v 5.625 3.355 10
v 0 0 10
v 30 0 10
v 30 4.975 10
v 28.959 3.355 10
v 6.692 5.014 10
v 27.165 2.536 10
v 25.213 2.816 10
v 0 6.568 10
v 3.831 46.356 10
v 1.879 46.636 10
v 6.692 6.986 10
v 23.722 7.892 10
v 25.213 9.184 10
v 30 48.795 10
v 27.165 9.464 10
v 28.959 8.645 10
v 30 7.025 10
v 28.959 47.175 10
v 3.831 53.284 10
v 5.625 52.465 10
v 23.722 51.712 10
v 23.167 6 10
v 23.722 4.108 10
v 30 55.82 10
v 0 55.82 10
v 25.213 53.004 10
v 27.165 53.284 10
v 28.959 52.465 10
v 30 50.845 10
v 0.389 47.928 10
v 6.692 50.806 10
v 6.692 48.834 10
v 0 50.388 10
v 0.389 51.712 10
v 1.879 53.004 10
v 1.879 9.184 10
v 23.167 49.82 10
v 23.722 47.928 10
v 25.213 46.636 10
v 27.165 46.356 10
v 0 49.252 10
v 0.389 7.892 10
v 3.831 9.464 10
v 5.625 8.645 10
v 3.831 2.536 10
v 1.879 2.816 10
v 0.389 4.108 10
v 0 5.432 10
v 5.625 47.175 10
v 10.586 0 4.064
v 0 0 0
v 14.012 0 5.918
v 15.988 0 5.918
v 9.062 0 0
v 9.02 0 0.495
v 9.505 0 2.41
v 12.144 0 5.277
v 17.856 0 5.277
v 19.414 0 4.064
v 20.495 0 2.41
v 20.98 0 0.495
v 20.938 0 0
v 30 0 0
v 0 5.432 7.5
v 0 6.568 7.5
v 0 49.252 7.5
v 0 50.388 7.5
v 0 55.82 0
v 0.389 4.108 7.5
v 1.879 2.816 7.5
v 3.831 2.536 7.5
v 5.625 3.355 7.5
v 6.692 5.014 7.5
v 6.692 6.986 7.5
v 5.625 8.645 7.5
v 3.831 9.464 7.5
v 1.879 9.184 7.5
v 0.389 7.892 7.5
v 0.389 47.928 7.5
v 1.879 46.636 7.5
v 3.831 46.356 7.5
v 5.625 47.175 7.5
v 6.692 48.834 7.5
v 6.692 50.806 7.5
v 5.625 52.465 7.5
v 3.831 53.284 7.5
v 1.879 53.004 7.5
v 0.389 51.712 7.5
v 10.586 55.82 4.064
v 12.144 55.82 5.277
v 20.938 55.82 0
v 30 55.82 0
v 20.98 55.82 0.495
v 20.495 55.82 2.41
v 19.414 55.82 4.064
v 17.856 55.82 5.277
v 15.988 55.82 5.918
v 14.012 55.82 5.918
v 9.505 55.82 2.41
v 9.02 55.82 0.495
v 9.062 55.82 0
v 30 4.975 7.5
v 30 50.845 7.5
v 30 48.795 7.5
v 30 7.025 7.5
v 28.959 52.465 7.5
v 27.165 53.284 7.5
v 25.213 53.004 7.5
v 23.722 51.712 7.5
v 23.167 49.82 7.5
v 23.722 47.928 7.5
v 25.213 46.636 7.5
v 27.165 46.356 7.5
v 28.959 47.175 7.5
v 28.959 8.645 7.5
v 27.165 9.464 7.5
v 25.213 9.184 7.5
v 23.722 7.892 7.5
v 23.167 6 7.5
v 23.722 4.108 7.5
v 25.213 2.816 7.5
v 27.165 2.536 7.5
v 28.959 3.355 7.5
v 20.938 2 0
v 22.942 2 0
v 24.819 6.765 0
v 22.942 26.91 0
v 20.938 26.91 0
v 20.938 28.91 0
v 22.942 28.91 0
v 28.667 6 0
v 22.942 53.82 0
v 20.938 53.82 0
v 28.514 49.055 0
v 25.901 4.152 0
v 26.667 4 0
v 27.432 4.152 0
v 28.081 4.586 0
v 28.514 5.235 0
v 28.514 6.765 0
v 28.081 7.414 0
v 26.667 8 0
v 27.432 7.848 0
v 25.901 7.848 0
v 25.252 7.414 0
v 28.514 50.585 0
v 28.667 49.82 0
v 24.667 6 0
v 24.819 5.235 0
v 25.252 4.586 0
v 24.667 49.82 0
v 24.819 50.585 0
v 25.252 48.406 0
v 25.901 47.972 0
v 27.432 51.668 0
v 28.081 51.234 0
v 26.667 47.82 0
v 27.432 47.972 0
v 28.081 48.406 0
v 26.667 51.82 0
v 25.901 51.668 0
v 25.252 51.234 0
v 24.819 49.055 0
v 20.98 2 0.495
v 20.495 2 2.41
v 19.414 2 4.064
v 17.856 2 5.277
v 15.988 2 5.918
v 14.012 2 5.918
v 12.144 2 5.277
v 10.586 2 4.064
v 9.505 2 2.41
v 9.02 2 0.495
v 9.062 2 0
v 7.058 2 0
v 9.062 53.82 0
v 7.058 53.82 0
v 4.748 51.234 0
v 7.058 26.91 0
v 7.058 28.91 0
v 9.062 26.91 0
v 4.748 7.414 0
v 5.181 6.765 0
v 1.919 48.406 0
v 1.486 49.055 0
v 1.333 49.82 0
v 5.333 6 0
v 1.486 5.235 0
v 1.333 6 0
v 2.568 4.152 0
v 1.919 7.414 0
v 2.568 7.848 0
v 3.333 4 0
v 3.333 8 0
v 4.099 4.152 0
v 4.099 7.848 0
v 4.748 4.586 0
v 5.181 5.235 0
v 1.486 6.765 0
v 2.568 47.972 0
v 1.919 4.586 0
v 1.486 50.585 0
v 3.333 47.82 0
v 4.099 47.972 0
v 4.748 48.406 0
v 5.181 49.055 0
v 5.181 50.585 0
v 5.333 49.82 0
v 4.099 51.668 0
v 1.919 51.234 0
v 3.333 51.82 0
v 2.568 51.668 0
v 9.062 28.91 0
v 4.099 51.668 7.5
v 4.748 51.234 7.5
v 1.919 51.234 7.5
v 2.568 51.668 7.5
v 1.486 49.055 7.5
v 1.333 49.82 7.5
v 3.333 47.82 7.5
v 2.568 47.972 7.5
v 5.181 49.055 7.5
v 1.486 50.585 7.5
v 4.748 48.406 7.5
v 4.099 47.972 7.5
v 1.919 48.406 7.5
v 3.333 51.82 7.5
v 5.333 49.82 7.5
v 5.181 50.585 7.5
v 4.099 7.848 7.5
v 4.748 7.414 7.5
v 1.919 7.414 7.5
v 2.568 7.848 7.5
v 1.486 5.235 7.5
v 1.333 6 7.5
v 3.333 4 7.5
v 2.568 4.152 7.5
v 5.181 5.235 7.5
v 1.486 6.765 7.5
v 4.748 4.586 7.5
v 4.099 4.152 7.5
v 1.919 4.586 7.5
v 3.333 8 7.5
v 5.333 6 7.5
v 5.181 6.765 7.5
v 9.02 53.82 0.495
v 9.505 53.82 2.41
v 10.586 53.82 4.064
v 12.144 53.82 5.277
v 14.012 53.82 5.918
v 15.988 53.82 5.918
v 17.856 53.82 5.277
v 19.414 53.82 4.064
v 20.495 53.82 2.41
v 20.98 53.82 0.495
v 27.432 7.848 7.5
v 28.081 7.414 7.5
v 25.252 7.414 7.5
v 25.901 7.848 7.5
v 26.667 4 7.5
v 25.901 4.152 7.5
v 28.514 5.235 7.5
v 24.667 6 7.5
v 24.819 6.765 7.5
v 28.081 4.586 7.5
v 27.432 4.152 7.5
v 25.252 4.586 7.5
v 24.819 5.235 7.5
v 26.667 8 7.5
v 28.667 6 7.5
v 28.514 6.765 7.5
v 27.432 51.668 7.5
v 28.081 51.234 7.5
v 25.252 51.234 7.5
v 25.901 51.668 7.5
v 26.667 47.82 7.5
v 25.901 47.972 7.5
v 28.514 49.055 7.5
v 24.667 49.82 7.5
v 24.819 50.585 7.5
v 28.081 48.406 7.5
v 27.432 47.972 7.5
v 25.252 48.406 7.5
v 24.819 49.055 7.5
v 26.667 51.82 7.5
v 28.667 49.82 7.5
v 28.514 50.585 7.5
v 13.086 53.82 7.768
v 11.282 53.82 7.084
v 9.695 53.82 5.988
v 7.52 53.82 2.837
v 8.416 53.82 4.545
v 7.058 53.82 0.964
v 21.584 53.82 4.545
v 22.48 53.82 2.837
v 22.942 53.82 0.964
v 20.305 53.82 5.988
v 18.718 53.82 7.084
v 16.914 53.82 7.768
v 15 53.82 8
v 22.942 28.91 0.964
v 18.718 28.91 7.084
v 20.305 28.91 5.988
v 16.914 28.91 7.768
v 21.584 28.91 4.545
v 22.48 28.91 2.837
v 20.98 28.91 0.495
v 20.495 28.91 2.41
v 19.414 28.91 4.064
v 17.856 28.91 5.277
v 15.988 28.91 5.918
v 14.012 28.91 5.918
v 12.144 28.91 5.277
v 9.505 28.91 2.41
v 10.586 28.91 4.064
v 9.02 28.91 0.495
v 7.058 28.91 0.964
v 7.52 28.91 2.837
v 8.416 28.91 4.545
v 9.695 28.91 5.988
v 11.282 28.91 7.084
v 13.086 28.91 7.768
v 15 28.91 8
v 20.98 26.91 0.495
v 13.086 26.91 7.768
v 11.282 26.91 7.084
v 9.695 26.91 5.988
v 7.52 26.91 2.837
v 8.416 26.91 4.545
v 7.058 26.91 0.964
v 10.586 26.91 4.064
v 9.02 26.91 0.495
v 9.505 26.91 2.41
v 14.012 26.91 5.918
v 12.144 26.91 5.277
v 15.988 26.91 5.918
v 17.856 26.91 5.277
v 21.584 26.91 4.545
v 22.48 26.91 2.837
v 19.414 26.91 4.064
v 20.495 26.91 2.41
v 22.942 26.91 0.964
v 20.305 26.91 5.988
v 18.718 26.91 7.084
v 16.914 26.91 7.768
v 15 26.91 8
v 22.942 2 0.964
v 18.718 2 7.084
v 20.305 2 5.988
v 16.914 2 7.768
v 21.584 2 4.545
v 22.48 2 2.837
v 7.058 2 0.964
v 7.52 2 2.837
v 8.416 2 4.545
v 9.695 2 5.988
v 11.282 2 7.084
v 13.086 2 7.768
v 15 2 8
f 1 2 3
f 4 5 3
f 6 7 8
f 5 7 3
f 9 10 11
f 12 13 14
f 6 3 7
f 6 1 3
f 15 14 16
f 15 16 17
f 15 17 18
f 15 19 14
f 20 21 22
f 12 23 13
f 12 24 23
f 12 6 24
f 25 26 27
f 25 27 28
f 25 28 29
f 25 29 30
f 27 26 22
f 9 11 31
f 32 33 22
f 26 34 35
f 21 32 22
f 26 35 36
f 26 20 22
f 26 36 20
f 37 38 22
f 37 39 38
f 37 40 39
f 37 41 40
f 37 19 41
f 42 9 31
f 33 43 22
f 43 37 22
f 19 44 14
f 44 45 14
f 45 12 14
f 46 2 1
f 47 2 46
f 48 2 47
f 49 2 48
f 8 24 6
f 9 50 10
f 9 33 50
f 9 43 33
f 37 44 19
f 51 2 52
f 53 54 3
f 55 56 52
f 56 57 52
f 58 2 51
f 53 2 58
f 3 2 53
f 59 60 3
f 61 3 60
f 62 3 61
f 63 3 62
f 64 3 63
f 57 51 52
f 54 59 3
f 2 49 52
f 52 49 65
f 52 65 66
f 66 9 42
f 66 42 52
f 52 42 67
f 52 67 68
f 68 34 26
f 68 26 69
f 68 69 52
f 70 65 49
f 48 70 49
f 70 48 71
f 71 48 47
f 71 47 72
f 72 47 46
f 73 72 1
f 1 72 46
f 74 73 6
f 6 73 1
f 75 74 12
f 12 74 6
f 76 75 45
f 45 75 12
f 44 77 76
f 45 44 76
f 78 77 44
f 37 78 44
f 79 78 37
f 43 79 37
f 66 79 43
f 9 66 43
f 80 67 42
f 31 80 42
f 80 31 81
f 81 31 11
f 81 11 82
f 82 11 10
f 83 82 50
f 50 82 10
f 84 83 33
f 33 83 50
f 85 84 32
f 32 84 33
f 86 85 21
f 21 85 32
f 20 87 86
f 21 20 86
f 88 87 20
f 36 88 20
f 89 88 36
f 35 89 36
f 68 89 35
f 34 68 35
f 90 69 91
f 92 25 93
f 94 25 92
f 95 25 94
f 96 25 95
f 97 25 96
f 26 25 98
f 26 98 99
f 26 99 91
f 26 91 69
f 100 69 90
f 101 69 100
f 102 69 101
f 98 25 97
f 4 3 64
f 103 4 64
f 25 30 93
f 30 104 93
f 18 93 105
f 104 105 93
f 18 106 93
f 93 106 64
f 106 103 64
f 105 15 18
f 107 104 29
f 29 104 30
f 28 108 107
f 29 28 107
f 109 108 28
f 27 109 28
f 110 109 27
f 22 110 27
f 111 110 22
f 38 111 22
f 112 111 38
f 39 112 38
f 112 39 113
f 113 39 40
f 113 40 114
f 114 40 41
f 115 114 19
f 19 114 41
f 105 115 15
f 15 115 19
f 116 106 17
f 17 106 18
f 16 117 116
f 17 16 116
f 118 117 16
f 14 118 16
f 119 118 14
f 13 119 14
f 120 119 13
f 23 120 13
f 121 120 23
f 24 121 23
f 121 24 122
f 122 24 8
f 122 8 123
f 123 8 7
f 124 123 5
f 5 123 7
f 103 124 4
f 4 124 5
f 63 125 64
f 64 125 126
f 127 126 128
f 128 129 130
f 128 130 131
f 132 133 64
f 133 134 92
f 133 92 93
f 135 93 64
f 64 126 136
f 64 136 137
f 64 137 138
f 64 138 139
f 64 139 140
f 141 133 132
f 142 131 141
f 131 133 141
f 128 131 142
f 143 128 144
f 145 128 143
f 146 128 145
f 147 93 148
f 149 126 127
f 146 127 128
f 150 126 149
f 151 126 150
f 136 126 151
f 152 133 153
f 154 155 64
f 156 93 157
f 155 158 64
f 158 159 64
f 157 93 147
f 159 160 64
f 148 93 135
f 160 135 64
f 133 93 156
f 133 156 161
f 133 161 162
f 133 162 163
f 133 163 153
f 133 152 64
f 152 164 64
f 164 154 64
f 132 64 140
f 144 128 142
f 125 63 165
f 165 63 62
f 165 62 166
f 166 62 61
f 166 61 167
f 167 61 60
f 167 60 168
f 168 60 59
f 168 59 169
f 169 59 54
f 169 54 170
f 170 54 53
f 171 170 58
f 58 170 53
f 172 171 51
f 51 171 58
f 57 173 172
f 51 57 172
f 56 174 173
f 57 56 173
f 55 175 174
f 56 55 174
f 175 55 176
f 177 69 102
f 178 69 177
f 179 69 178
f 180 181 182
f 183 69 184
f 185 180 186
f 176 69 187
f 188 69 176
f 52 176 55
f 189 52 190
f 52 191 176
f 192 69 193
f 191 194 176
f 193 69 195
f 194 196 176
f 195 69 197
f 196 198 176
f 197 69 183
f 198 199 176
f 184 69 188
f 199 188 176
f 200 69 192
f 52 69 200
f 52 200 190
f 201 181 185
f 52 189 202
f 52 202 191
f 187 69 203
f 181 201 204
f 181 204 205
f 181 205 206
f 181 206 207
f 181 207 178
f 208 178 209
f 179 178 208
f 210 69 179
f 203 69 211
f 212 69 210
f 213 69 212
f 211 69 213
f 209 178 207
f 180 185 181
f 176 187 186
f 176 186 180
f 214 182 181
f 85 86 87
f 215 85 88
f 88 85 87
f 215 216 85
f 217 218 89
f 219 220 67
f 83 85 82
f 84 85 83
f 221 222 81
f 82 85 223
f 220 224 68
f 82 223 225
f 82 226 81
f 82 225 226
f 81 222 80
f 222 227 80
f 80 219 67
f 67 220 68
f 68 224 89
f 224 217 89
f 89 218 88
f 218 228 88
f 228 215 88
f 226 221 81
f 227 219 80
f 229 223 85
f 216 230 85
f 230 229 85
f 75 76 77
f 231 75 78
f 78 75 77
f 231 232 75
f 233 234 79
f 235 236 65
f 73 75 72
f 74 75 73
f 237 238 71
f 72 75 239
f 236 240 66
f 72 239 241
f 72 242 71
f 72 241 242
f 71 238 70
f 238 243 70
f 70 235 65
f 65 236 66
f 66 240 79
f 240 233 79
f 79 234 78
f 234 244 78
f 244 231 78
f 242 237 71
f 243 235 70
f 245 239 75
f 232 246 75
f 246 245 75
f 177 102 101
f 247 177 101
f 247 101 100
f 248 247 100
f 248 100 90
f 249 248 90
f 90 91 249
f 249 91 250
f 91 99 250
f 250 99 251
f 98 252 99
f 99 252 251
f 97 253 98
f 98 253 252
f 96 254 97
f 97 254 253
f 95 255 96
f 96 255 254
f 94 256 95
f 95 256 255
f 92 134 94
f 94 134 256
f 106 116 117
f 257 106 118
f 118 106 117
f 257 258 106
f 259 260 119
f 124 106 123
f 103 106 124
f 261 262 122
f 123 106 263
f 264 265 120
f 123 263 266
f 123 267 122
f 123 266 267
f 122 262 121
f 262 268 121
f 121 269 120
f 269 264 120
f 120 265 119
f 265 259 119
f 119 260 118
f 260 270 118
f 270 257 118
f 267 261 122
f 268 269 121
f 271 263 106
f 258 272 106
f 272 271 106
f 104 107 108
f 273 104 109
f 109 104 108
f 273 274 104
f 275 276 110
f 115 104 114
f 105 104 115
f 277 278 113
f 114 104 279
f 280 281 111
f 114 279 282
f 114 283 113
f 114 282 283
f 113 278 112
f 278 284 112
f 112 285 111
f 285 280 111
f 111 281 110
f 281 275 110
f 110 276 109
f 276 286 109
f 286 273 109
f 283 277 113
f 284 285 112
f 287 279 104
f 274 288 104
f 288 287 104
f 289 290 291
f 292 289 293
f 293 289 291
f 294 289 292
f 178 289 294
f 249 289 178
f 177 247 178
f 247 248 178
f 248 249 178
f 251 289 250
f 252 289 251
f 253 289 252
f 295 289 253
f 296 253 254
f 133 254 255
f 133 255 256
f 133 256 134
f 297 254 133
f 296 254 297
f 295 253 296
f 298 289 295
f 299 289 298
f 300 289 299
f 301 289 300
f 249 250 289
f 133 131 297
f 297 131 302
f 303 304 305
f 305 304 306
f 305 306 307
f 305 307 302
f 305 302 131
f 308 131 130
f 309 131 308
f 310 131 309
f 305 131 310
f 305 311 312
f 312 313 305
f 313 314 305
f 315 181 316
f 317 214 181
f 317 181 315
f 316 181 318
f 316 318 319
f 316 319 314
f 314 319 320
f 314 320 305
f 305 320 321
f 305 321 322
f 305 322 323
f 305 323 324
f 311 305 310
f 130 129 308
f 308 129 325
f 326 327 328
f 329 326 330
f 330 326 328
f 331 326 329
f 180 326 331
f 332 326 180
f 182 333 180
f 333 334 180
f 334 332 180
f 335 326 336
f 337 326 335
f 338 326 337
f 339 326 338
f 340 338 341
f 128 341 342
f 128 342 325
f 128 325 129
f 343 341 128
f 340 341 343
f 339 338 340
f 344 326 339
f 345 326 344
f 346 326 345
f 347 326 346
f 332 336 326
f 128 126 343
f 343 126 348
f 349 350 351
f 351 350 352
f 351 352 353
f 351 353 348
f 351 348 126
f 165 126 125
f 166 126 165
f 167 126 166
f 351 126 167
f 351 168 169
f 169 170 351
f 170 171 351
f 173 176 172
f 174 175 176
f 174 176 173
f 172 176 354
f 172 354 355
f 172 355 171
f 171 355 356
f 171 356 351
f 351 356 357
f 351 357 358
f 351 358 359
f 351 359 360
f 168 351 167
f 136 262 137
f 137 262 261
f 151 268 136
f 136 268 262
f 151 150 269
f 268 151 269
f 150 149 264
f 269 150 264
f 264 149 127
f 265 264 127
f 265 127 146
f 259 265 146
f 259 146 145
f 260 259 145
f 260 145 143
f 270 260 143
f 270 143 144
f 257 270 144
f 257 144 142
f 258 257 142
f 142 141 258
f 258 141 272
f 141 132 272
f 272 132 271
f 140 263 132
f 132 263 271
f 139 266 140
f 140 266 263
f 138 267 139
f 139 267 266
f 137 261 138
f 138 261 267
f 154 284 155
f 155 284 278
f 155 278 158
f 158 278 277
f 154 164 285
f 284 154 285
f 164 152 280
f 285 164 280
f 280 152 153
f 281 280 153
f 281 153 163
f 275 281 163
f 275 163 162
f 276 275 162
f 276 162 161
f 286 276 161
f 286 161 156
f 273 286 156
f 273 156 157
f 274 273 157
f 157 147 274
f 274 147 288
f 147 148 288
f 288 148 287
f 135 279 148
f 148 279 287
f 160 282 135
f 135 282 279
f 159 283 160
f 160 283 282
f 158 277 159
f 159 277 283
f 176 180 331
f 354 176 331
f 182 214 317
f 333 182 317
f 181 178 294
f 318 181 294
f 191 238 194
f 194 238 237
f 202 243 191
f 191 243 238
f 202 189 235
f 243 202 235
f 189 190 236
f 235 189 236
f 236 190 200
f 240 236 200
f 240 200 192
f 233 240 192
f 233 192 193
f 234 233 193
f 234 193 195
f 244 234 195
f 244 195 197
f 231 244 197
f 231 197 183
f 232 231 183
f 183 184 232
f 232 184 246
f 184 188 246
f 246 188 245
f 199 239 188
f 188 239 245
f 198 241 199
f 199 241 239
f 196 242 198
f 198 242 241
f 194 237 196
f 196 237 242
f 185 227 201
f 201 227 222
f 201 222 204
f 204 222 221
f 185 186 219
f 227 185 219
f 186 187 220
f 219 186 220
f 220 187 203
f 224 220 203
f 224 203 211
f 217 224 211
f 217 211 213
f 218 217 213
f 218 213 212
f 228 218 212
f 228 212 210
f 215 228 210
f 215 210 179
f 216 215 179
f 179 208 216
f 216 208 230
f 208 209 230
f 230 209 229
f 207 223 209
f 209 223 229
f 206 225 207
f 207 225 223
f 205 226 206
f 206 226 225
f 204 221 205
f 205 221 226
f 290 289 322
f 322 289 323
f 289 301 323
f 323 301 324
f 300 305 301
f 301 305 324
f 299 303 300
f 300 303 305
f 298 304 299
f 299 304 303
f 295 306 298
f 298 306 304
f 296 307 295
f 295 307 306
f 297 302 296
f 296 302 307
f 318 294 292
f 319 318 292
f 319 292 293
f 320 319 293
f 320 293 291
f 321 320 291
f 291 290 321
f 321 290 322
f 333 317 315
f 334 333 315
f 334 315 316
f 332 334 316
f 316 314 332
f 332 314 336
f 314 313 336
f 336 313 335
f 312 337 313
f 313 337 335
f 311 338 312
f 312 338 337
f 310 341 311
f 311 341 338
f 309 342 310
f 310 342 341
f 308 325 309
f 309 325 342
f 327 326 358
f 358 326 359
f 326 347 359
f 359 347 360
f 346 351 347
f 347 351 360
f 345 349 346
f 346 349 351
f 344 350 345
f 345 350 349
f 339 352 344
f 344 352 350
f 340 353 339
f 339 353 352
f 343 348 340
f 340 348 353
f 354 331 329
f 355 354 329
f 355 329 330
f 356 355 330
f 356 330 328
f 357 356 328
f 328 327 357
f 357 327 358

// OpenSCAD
// file: BearingMount2.scad
 
// X and Y position rotation functions
//function RotateX(x,xc,y,yc,theta) = cos(theta)*(x-xc) - sin(theta)*(y-yc) + xc;
//function RotateY(x,xc,y,yc,theta) = sin(theta)*(x-xc) + cos(theta)*(y-yc) + yc;
//  TEST
//HalfRail(3);
// Draw a LM8UU bearing
// ---------------------------------------------------------------------
module LM8UU()
{
	dia = 7.5;
	dia_off=.5;
	long = 24;
	long_off=.91;
	color("Green") 
	translate([0,0,0]) 
	rotate([270,0,0])
	cylinder(h=long+long_off,r=dia+dia_off);
}

// Draw a 608ZZ bearing
// ---------------------------------------------------------------------
module 608ZZ()
{
	dia_off=.5;
	color("red")
	rotate([270,0,0])
	cylinder(h=7,r=11+dia_off);
}

//Draw a 8mm Rod
// ---------------------------------------------------------------------
module 8mmRod(Lenght)
{
	dia_off=.97;
	color("blue")
	rotate([270,0,0])
	cylinder(h=Lenght,r=4+dia_off);
}


// Half rail Module
//---------------------------------------------------------------
// SplitFixType = 1 Screw Head,  2+= 3mm nut;
module HalfRail(FixHoleType = 1)
{
AdditionalHeight = 10;   //for screw hole
LM8UUDiam = 8*2;
LM8UULenght = 24.91;
WallWidth = 2;
BearingCenterZ = LM8UUDiam/2 + WallWidth + AdditionalHeight/2 ;
TotalHeight =  LM8UUDiam + (WallWidth*2) + AdditionalHeight ;
TotalLenght = (LM8UULenght*2) +  (WallWidth*3);
TotalWidth = WallWidth + LM8UUDiam/2;


//BaseHeight =  BaseHeightRelative/2 + OuterDia;


HexNutHoleRadius = 3.5;
ScrewHeadRadius = 3.9;
ScrewDomeHeadRadius = 4.1;
ScrewDomeHoleRadius = 1.5;

echo("***TotalLenght=", TotalLenght);
echo("***TotalWidth=", TotalWidth);
echo("***TotalHeight=", TotalHeight);
echo("***BearingCenterZ=", BearingCenterZ);

//translate([0,0,BaseHeight])

	difference()
	{
		union()
		{
			cube([TotalWidth ,TotalLenght,TotalHeight ]);
		}
			
		// Bearings
		translate ([TotalWidth,WallWidth,BearingCenterZ]) LM8UU();
		translate ([TotalWidth,WallWidth+LM8UULenght+WallWidth,BearingCenterZ]) LM8UU();

		//Shaft 8mm
		translate ([TotalWidth,-1,BearingCenterZ]) rotate([270,0,0]) cylinder (h =TotalLenght+2,  r=6);


		if ( FixHoleType == 3) //Dome Screw Head
		{
			translate([2,6,TotalHeight - AdditionalHeight/3]) rotate([0,90,0]) cylinder(h=30,r=2 , $fn=16);
			translate([-1,6,TotalHeight - AdditionalHeight/3]) rotate([0,90,0]) cylinder(h=3.5,r=3.5);
			
			translate([2,6,AdditionalHeight/3]) rotate([0,90,0]) cylinder(h=30,r=2 ,$fn=16);
			translate([-1,6,AdditionalHeight/3]) rotate([0,90,0]) cylinder(h=3.5,r=3.5);
			
			translate([2,TotalLenght-6,TotalHeight - AdditionalHeight/3]) rotate([0,90,0]) cylinder(h=30,r=2, $fn=16);
			translate([-1,TotalLenght-6,TotalHeight - AdditionalHeight/3]) rotate([0,90,0]) cylinder(h=3.5,r=3.5);
			
			translate([2,TotalLenght-6,AdditionalHeight/3]) rotate([0,90,0]) cylinder(h=30,r=2, $fn=16);
			translate([-1,TotalLenght-6,AdditionalHeight/3]) rotate([0,90,0]) cylinder(h=3.5,r=3.5);
		}

		
		if ( FixHoleType == 4) //Dome Screw Hole
		{
			translate([2,6,TotalHeight - AdditionalHeight/3]) rotate([0,90,0]) cylinder(h=30,r=1.5);
			translate([2,6,AdditionalHeight/3]) rotate([0,90,0]) cylinder(h=30,r=1.5);
			translate([2,TotalLenght-6,TotalHeight - AdditionalHeight/3]) rotate([0,90,0]) cylinder(h=30,r=1.5);
			translate([2,TotalLenght-6,AdditionalHeight/3]) rotate([0,90,0]) cylinder(h=30,r=1.5);
		}

		
		
	}	
	//To remove
		// translate ([0,2,0])LM8UU();
		// translate ([0,32,0]) LM8UU();
		// translate ([0,-25,0]) 8mmRod(100);
		// translate ([0,-15,-OuterDia]) cube([15,100,50]);		
		

		//Draw the fixing holes
		// if ( SplitFixType == 1 ) //m3 Screw Head
		// {
			// translate([-20,-2,8.5]) rotate ([0,90,0]) cylinder(h=50, r=1.9, $fn=10);
			// translate([-24.5,-2,8.5]) rotate ([0,90,0]) cylinder(h=20, r=ScrewHeadRadius, $fn=10);
			// translate([-20,-2,-8.5]) rotate ([0,90,0]) cylinder(h=50, r=1.9, $fn=10);
			// translate([-24.5,-2,-8.5]) rotate ([0,90,0]) cylinder(h=20, r=ScrewHeadRadius, $fn=10);
			// translate([-20,60,8.5]) rotate ([0,90,0]) cylinder(h=50, r=1.9, $fn=10);
			// translate([-24.5,60,8.5]) rotate ([0,90,0]) cylinder(h=20, r=ScrewHeadRadius, $fn=10);
			// translate([-20,60,-8.5]) rotate ([0,90,0]) cylinder(h=50, r=1.9, $fn=10);
			// translate([-24.5,60,-8.5]) rotate ([0,90,0]) cylinder(h=20, r=ScrewHeadRadius, $fn=10);
		// }
		
		// if ( SplitFixType == 2) //M3 Nuts
		// {
			// translate([-20,-2,8.5]) rotate ([0,90,0]) cylinder(h=50, r=1.9, $fn=10);
			// translate([-24.5,-2,8.5]) rotate ([0,90,0]) cylinder(h=20, r=HexNutHoleRadius, $fn=6);
			// translate([-20,-2,-8.5]) rotate ([0,90,0]) cylinder(h=50, r=1.9, $fn=10);
			// translate([-24.5,-2,-8.5]) rotate ([0,90,0]) cylinder(h=20, r=HexNutHoleRadius, $fn=6);
			// translate([-20,60,8.5]) rotate ([0,90,0]) cylinder(h=50, r=1.9, $fn=10);
			// translate([-24.5,60,8.5]) rotate ([0,90,0]) cylinder(h=20, r=HexNutHoleRadius, $fn=6);
			// translate([-20,60,-8.5]) rotate ([0,90,0]) cylinder(h=50, r=1.9, $fn=10);
			// translate([-24.5,60,-8.5]) rotate ([0,90,0]) cylinder(h=20, r=HexNutHoleRadius, $fn=6);
		// }
		
		// if ( SplitFixType == 3) //DomeScrew Head
		// {
			// translate([-20,-2,8.5]) rotate ([0,90,0]) cylinder(h=50, r=1.9, $fn=10);
			// translate([-27.5,-2,8.5]) rotate ([0,90,0]) cylinder(h=20, r=ScrewDomeHeadRadius, $fn=10);
			// translate([-20,-2,-8.5]) rotate ([0,90,0]) cylinder(h=50, r=1.9, $fn=10);
			// translate([-27.5,-2,-8.5]) rotate ([0,90,0]) cylinder(h=20, r=ScrewDomeHeadRadius, $fn=10);
			// translate([-20,60,8.5]) rotate ([0,90,0]) cylinder(h=50, r=1.9, $fn=10);
			// translate([-27.5,60,8.5]) rotate ([0,90,0]) cylinder(h=20, r=ScrewDomeHeadRadius, $fn=10);
			// translate([-20,60,-8.5]) rotate ([0,90,0]) cylinder(h=50, r=1.9, $fn=10);
			// translate([-27.5,60,-8.5]) rotate ([0,90,0]) cylinder(h=20, r=ScrewDomeHeadRadius, $fn=10);
		// }

		// if ( SplitFixType == 4) //Dome Screw Hole
		// {
			// translate([-8,-2,8.5]) rotate ([0,90,0]) cylinder(h=20, r=ScrewDomeHoleRadius, $fn=10);
			// translate([-8,-2,-8.5]) rotate ([0,90,0]) cylinder(h=50, r=ScrewDomeHoleRadius, $fn=10);
			// translate([-8,60,8.5]) rotate ([0,90,0]) cylinder(h=50, r=ScrewDomeHoleRadius, $fn=10);
			// translate([-8,60,-8.5]) rotate ([0,90,0]) cylinder(h=50, r=ScrewDomeHoleRadius, $fn=10);
		// }
		
	//}
}
// main file
//BearingPlate.scad

include<BearingMount2.scad>;

translate([0,0,10]) rotate([0,90,0]) HalfRail(3);
